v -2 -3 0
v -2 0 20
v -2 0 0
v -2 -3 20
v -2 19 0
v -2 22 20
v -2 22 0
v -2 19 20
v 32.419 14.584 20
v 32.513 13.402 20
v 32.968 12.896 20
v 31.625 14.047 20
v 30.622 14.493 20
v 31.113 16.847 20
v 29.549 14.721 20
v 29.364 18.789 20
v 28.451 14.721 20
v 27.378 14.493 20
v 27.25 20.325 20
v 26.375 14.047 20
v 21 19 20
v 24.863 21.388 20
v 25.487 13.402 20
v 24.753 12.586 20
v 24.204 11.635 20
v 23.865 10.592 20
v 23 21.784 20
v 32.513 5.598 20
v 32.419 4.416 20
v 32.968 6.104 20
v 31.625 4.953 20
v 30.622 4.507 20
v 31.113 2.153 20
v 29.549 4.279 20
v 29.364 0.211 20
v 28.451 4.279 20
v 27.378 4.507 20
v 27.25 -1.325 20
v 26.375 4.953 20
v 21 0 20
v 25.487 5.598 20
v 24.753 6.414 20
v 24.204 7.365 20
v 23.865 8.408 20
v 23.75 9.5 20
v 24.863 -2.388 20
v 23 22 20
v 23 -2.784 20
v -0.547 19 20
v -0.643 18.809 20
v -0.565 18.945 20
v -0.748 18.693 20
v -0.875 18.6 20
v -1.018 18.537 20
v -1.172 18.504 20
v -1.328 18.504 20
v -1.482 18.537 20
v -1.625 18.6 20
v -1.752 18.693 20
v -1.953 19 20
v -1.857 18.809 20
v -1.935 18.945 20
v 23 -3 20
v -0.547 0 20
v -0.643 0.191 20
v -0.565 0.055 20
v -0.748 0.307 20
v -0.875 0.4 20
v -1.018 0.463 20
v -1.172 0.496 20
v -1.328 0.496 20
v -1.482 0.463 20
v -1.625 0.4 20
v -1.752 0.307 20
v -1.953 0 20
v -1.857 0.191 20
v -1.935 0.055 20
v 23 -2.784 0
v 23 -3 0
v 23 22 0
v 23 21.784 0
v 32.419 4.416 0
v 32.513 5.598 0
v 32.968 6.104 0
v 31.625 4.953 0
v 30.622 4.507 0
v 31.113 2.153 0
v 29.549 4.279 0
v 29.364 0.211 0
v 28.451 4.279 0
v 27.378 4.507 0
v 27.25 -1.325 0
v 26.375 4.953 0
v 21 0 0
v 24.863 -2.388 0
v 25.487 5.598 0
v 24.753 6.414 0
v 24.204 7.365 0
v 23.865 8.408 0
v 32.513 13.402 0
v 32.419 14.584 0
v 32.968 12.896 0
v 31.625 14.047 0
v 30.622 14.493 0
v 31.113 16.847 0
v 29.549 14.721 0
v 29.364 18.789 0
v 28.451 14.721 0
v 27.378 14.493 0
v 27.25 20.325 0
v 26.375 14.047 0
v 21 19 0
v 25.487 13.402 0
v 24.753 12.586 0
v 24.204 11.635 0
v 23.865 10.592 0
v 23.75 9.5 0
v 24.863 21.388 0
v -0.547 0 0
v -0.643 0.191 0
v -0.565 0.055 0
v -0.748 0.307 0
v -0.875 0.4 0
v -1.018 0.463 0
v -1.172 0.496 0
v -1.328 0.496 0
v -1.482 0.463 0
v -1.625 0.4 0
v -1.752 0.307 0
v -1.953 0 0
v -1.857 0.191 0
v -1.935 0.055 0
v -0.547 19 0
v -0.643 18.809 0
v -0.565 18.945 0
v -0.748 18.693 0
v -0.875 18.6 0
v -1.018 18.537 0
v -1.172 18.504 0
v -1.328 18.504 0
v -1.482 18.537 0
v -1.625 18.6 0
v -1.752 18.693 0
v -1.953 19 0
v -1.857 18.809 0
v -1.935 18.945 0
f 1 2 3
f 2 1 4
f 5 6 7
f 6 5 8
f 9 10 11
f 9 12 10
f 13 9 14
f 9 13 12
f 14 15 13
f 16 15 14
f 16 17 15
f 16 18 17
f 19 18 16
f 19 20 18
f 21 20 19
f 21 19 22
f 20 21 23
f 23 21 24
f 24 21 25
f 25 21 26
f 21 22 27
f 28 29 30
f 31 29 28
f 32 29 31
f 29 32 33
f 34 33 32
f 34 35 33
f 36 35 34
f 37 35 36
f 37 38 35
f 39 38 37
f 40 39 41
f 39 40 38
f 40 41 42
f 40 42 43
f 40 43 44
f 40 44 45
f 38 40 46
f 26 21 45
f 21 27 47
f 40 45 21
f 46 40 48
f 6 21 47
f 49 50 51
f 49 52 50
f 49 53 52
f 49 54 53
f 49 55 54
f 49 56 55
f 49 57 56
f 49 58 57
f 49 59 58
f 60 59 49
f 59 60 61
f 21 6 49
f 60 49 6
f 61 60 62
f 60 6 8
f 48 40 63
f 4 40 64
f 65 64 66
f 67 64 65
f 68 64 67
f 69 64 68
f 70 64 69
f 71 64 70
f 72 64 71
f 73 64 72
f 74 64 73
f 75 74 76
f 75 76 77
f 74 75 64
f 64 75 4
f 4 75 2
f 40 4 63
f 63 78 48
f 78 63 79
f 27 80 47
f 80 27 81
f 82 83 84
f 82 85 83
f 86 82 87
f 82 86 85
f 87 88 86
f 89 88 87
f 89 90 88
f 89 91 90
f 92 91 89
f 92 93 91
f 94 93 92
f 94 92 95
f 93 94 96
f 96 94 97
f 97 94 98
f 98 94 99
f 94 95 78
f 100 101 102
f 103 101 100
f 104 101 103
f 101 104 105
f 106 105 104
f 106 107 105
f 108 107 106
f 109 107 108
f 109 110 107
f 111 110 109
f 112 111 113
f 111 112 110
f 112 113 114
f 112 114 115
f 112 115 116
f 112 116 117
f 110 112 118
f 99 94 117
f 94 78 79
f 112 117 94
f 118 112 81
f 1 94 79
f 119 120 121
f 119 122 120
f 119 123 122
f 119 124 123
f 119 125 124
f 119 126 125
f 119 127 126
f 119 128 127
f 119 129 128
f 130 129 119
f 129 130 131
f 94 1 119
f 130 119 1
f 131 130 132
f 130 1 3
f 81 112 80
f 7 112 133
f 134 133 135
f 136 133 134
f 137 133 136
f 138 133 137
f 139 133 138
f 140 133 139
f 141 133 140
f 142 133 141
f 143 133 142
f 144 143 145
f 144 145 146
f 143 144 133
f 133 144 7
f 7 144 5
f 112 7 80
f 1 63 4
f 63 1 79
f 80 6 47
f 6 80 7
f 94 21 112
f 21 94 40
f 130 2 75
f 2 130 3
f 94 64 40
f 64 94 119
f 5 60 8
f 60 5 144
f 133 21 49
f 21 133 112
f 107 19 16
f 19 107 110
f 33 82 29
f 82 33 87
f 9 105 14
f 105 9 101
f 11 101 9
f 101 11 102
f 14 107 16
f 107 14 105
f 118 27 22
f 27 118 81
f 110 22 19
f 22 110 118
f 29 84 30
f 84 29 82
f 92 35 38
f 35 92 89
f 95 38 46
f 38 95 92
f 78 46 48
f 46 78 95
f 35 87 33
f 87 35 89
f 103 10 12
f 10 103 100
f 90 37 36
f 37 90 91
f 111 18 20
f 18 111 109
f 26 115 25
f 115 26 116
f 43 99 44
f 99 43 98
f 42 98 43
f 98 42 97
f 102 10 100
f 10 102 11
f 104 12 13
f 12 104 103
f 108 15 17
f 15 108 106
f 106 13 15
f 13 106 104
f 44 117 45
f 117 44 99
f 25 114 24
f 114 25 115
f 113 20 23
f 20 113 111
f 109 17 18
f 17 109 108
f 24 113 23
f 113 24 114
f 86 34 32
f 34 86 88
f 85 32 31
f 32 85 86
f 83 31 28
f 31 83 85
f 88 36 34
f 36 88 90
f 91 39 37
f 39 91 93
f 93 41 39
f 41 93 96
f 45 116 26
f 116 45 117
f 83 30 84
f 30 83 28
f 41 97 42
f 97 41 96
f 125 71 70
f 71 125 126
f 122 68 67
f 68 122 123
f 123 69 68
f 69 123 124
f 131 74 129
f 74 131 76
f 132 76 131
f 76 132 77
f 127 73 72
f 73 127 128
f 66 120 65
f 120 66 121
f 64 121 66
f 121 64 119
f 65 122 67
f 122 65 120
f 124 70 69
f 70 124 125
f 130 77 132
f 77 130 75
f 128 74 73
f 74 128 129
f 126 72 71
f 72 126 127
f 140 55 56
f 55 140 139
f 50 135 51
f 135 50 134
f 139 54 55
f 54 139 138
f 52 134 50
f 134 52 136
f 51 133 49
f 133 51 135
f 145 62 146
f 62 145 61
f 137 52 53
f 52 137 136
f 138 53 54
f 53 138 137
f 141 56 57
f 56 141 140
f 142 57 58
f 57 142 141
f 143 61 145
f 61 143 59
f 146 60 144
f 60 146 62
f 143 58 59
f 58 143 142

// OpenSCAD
needle_holder();

%translate([0, 0, -20])
frame_and_needle();

module needle_holder($fn=30) {
    difference() {
        translate([(21-25)/2, (19-25)/2])
        cube([25, 25, 20]);
        
        translate([-5, 0, -1])
        cube([26, 19, 100]);
    }

    translate([-1.25, -0.25, 0])
    cylinder(h=20, d=1.5);

    translate([-1.25, 19.25, 0])
    cylinder(h=20, d=1.5);
    
    translate([21, 19/2, 0])
    difference() {
        cylinder(h=20, d=25);

        translate([-100, -50, -1])
        cube([100, 100, 100]);

        translate([25/2, 0, -0.5])
        cylinder(h=26, d=5);
        
        translate([8, 0, -0.5])
        cylinder(h=26, d=10.5);
    }
}

module frame_and_needle() {
    cube([21, 19, 100]);

    translate([29, 19/2])
    cylinder(h=140, d=10);
}
